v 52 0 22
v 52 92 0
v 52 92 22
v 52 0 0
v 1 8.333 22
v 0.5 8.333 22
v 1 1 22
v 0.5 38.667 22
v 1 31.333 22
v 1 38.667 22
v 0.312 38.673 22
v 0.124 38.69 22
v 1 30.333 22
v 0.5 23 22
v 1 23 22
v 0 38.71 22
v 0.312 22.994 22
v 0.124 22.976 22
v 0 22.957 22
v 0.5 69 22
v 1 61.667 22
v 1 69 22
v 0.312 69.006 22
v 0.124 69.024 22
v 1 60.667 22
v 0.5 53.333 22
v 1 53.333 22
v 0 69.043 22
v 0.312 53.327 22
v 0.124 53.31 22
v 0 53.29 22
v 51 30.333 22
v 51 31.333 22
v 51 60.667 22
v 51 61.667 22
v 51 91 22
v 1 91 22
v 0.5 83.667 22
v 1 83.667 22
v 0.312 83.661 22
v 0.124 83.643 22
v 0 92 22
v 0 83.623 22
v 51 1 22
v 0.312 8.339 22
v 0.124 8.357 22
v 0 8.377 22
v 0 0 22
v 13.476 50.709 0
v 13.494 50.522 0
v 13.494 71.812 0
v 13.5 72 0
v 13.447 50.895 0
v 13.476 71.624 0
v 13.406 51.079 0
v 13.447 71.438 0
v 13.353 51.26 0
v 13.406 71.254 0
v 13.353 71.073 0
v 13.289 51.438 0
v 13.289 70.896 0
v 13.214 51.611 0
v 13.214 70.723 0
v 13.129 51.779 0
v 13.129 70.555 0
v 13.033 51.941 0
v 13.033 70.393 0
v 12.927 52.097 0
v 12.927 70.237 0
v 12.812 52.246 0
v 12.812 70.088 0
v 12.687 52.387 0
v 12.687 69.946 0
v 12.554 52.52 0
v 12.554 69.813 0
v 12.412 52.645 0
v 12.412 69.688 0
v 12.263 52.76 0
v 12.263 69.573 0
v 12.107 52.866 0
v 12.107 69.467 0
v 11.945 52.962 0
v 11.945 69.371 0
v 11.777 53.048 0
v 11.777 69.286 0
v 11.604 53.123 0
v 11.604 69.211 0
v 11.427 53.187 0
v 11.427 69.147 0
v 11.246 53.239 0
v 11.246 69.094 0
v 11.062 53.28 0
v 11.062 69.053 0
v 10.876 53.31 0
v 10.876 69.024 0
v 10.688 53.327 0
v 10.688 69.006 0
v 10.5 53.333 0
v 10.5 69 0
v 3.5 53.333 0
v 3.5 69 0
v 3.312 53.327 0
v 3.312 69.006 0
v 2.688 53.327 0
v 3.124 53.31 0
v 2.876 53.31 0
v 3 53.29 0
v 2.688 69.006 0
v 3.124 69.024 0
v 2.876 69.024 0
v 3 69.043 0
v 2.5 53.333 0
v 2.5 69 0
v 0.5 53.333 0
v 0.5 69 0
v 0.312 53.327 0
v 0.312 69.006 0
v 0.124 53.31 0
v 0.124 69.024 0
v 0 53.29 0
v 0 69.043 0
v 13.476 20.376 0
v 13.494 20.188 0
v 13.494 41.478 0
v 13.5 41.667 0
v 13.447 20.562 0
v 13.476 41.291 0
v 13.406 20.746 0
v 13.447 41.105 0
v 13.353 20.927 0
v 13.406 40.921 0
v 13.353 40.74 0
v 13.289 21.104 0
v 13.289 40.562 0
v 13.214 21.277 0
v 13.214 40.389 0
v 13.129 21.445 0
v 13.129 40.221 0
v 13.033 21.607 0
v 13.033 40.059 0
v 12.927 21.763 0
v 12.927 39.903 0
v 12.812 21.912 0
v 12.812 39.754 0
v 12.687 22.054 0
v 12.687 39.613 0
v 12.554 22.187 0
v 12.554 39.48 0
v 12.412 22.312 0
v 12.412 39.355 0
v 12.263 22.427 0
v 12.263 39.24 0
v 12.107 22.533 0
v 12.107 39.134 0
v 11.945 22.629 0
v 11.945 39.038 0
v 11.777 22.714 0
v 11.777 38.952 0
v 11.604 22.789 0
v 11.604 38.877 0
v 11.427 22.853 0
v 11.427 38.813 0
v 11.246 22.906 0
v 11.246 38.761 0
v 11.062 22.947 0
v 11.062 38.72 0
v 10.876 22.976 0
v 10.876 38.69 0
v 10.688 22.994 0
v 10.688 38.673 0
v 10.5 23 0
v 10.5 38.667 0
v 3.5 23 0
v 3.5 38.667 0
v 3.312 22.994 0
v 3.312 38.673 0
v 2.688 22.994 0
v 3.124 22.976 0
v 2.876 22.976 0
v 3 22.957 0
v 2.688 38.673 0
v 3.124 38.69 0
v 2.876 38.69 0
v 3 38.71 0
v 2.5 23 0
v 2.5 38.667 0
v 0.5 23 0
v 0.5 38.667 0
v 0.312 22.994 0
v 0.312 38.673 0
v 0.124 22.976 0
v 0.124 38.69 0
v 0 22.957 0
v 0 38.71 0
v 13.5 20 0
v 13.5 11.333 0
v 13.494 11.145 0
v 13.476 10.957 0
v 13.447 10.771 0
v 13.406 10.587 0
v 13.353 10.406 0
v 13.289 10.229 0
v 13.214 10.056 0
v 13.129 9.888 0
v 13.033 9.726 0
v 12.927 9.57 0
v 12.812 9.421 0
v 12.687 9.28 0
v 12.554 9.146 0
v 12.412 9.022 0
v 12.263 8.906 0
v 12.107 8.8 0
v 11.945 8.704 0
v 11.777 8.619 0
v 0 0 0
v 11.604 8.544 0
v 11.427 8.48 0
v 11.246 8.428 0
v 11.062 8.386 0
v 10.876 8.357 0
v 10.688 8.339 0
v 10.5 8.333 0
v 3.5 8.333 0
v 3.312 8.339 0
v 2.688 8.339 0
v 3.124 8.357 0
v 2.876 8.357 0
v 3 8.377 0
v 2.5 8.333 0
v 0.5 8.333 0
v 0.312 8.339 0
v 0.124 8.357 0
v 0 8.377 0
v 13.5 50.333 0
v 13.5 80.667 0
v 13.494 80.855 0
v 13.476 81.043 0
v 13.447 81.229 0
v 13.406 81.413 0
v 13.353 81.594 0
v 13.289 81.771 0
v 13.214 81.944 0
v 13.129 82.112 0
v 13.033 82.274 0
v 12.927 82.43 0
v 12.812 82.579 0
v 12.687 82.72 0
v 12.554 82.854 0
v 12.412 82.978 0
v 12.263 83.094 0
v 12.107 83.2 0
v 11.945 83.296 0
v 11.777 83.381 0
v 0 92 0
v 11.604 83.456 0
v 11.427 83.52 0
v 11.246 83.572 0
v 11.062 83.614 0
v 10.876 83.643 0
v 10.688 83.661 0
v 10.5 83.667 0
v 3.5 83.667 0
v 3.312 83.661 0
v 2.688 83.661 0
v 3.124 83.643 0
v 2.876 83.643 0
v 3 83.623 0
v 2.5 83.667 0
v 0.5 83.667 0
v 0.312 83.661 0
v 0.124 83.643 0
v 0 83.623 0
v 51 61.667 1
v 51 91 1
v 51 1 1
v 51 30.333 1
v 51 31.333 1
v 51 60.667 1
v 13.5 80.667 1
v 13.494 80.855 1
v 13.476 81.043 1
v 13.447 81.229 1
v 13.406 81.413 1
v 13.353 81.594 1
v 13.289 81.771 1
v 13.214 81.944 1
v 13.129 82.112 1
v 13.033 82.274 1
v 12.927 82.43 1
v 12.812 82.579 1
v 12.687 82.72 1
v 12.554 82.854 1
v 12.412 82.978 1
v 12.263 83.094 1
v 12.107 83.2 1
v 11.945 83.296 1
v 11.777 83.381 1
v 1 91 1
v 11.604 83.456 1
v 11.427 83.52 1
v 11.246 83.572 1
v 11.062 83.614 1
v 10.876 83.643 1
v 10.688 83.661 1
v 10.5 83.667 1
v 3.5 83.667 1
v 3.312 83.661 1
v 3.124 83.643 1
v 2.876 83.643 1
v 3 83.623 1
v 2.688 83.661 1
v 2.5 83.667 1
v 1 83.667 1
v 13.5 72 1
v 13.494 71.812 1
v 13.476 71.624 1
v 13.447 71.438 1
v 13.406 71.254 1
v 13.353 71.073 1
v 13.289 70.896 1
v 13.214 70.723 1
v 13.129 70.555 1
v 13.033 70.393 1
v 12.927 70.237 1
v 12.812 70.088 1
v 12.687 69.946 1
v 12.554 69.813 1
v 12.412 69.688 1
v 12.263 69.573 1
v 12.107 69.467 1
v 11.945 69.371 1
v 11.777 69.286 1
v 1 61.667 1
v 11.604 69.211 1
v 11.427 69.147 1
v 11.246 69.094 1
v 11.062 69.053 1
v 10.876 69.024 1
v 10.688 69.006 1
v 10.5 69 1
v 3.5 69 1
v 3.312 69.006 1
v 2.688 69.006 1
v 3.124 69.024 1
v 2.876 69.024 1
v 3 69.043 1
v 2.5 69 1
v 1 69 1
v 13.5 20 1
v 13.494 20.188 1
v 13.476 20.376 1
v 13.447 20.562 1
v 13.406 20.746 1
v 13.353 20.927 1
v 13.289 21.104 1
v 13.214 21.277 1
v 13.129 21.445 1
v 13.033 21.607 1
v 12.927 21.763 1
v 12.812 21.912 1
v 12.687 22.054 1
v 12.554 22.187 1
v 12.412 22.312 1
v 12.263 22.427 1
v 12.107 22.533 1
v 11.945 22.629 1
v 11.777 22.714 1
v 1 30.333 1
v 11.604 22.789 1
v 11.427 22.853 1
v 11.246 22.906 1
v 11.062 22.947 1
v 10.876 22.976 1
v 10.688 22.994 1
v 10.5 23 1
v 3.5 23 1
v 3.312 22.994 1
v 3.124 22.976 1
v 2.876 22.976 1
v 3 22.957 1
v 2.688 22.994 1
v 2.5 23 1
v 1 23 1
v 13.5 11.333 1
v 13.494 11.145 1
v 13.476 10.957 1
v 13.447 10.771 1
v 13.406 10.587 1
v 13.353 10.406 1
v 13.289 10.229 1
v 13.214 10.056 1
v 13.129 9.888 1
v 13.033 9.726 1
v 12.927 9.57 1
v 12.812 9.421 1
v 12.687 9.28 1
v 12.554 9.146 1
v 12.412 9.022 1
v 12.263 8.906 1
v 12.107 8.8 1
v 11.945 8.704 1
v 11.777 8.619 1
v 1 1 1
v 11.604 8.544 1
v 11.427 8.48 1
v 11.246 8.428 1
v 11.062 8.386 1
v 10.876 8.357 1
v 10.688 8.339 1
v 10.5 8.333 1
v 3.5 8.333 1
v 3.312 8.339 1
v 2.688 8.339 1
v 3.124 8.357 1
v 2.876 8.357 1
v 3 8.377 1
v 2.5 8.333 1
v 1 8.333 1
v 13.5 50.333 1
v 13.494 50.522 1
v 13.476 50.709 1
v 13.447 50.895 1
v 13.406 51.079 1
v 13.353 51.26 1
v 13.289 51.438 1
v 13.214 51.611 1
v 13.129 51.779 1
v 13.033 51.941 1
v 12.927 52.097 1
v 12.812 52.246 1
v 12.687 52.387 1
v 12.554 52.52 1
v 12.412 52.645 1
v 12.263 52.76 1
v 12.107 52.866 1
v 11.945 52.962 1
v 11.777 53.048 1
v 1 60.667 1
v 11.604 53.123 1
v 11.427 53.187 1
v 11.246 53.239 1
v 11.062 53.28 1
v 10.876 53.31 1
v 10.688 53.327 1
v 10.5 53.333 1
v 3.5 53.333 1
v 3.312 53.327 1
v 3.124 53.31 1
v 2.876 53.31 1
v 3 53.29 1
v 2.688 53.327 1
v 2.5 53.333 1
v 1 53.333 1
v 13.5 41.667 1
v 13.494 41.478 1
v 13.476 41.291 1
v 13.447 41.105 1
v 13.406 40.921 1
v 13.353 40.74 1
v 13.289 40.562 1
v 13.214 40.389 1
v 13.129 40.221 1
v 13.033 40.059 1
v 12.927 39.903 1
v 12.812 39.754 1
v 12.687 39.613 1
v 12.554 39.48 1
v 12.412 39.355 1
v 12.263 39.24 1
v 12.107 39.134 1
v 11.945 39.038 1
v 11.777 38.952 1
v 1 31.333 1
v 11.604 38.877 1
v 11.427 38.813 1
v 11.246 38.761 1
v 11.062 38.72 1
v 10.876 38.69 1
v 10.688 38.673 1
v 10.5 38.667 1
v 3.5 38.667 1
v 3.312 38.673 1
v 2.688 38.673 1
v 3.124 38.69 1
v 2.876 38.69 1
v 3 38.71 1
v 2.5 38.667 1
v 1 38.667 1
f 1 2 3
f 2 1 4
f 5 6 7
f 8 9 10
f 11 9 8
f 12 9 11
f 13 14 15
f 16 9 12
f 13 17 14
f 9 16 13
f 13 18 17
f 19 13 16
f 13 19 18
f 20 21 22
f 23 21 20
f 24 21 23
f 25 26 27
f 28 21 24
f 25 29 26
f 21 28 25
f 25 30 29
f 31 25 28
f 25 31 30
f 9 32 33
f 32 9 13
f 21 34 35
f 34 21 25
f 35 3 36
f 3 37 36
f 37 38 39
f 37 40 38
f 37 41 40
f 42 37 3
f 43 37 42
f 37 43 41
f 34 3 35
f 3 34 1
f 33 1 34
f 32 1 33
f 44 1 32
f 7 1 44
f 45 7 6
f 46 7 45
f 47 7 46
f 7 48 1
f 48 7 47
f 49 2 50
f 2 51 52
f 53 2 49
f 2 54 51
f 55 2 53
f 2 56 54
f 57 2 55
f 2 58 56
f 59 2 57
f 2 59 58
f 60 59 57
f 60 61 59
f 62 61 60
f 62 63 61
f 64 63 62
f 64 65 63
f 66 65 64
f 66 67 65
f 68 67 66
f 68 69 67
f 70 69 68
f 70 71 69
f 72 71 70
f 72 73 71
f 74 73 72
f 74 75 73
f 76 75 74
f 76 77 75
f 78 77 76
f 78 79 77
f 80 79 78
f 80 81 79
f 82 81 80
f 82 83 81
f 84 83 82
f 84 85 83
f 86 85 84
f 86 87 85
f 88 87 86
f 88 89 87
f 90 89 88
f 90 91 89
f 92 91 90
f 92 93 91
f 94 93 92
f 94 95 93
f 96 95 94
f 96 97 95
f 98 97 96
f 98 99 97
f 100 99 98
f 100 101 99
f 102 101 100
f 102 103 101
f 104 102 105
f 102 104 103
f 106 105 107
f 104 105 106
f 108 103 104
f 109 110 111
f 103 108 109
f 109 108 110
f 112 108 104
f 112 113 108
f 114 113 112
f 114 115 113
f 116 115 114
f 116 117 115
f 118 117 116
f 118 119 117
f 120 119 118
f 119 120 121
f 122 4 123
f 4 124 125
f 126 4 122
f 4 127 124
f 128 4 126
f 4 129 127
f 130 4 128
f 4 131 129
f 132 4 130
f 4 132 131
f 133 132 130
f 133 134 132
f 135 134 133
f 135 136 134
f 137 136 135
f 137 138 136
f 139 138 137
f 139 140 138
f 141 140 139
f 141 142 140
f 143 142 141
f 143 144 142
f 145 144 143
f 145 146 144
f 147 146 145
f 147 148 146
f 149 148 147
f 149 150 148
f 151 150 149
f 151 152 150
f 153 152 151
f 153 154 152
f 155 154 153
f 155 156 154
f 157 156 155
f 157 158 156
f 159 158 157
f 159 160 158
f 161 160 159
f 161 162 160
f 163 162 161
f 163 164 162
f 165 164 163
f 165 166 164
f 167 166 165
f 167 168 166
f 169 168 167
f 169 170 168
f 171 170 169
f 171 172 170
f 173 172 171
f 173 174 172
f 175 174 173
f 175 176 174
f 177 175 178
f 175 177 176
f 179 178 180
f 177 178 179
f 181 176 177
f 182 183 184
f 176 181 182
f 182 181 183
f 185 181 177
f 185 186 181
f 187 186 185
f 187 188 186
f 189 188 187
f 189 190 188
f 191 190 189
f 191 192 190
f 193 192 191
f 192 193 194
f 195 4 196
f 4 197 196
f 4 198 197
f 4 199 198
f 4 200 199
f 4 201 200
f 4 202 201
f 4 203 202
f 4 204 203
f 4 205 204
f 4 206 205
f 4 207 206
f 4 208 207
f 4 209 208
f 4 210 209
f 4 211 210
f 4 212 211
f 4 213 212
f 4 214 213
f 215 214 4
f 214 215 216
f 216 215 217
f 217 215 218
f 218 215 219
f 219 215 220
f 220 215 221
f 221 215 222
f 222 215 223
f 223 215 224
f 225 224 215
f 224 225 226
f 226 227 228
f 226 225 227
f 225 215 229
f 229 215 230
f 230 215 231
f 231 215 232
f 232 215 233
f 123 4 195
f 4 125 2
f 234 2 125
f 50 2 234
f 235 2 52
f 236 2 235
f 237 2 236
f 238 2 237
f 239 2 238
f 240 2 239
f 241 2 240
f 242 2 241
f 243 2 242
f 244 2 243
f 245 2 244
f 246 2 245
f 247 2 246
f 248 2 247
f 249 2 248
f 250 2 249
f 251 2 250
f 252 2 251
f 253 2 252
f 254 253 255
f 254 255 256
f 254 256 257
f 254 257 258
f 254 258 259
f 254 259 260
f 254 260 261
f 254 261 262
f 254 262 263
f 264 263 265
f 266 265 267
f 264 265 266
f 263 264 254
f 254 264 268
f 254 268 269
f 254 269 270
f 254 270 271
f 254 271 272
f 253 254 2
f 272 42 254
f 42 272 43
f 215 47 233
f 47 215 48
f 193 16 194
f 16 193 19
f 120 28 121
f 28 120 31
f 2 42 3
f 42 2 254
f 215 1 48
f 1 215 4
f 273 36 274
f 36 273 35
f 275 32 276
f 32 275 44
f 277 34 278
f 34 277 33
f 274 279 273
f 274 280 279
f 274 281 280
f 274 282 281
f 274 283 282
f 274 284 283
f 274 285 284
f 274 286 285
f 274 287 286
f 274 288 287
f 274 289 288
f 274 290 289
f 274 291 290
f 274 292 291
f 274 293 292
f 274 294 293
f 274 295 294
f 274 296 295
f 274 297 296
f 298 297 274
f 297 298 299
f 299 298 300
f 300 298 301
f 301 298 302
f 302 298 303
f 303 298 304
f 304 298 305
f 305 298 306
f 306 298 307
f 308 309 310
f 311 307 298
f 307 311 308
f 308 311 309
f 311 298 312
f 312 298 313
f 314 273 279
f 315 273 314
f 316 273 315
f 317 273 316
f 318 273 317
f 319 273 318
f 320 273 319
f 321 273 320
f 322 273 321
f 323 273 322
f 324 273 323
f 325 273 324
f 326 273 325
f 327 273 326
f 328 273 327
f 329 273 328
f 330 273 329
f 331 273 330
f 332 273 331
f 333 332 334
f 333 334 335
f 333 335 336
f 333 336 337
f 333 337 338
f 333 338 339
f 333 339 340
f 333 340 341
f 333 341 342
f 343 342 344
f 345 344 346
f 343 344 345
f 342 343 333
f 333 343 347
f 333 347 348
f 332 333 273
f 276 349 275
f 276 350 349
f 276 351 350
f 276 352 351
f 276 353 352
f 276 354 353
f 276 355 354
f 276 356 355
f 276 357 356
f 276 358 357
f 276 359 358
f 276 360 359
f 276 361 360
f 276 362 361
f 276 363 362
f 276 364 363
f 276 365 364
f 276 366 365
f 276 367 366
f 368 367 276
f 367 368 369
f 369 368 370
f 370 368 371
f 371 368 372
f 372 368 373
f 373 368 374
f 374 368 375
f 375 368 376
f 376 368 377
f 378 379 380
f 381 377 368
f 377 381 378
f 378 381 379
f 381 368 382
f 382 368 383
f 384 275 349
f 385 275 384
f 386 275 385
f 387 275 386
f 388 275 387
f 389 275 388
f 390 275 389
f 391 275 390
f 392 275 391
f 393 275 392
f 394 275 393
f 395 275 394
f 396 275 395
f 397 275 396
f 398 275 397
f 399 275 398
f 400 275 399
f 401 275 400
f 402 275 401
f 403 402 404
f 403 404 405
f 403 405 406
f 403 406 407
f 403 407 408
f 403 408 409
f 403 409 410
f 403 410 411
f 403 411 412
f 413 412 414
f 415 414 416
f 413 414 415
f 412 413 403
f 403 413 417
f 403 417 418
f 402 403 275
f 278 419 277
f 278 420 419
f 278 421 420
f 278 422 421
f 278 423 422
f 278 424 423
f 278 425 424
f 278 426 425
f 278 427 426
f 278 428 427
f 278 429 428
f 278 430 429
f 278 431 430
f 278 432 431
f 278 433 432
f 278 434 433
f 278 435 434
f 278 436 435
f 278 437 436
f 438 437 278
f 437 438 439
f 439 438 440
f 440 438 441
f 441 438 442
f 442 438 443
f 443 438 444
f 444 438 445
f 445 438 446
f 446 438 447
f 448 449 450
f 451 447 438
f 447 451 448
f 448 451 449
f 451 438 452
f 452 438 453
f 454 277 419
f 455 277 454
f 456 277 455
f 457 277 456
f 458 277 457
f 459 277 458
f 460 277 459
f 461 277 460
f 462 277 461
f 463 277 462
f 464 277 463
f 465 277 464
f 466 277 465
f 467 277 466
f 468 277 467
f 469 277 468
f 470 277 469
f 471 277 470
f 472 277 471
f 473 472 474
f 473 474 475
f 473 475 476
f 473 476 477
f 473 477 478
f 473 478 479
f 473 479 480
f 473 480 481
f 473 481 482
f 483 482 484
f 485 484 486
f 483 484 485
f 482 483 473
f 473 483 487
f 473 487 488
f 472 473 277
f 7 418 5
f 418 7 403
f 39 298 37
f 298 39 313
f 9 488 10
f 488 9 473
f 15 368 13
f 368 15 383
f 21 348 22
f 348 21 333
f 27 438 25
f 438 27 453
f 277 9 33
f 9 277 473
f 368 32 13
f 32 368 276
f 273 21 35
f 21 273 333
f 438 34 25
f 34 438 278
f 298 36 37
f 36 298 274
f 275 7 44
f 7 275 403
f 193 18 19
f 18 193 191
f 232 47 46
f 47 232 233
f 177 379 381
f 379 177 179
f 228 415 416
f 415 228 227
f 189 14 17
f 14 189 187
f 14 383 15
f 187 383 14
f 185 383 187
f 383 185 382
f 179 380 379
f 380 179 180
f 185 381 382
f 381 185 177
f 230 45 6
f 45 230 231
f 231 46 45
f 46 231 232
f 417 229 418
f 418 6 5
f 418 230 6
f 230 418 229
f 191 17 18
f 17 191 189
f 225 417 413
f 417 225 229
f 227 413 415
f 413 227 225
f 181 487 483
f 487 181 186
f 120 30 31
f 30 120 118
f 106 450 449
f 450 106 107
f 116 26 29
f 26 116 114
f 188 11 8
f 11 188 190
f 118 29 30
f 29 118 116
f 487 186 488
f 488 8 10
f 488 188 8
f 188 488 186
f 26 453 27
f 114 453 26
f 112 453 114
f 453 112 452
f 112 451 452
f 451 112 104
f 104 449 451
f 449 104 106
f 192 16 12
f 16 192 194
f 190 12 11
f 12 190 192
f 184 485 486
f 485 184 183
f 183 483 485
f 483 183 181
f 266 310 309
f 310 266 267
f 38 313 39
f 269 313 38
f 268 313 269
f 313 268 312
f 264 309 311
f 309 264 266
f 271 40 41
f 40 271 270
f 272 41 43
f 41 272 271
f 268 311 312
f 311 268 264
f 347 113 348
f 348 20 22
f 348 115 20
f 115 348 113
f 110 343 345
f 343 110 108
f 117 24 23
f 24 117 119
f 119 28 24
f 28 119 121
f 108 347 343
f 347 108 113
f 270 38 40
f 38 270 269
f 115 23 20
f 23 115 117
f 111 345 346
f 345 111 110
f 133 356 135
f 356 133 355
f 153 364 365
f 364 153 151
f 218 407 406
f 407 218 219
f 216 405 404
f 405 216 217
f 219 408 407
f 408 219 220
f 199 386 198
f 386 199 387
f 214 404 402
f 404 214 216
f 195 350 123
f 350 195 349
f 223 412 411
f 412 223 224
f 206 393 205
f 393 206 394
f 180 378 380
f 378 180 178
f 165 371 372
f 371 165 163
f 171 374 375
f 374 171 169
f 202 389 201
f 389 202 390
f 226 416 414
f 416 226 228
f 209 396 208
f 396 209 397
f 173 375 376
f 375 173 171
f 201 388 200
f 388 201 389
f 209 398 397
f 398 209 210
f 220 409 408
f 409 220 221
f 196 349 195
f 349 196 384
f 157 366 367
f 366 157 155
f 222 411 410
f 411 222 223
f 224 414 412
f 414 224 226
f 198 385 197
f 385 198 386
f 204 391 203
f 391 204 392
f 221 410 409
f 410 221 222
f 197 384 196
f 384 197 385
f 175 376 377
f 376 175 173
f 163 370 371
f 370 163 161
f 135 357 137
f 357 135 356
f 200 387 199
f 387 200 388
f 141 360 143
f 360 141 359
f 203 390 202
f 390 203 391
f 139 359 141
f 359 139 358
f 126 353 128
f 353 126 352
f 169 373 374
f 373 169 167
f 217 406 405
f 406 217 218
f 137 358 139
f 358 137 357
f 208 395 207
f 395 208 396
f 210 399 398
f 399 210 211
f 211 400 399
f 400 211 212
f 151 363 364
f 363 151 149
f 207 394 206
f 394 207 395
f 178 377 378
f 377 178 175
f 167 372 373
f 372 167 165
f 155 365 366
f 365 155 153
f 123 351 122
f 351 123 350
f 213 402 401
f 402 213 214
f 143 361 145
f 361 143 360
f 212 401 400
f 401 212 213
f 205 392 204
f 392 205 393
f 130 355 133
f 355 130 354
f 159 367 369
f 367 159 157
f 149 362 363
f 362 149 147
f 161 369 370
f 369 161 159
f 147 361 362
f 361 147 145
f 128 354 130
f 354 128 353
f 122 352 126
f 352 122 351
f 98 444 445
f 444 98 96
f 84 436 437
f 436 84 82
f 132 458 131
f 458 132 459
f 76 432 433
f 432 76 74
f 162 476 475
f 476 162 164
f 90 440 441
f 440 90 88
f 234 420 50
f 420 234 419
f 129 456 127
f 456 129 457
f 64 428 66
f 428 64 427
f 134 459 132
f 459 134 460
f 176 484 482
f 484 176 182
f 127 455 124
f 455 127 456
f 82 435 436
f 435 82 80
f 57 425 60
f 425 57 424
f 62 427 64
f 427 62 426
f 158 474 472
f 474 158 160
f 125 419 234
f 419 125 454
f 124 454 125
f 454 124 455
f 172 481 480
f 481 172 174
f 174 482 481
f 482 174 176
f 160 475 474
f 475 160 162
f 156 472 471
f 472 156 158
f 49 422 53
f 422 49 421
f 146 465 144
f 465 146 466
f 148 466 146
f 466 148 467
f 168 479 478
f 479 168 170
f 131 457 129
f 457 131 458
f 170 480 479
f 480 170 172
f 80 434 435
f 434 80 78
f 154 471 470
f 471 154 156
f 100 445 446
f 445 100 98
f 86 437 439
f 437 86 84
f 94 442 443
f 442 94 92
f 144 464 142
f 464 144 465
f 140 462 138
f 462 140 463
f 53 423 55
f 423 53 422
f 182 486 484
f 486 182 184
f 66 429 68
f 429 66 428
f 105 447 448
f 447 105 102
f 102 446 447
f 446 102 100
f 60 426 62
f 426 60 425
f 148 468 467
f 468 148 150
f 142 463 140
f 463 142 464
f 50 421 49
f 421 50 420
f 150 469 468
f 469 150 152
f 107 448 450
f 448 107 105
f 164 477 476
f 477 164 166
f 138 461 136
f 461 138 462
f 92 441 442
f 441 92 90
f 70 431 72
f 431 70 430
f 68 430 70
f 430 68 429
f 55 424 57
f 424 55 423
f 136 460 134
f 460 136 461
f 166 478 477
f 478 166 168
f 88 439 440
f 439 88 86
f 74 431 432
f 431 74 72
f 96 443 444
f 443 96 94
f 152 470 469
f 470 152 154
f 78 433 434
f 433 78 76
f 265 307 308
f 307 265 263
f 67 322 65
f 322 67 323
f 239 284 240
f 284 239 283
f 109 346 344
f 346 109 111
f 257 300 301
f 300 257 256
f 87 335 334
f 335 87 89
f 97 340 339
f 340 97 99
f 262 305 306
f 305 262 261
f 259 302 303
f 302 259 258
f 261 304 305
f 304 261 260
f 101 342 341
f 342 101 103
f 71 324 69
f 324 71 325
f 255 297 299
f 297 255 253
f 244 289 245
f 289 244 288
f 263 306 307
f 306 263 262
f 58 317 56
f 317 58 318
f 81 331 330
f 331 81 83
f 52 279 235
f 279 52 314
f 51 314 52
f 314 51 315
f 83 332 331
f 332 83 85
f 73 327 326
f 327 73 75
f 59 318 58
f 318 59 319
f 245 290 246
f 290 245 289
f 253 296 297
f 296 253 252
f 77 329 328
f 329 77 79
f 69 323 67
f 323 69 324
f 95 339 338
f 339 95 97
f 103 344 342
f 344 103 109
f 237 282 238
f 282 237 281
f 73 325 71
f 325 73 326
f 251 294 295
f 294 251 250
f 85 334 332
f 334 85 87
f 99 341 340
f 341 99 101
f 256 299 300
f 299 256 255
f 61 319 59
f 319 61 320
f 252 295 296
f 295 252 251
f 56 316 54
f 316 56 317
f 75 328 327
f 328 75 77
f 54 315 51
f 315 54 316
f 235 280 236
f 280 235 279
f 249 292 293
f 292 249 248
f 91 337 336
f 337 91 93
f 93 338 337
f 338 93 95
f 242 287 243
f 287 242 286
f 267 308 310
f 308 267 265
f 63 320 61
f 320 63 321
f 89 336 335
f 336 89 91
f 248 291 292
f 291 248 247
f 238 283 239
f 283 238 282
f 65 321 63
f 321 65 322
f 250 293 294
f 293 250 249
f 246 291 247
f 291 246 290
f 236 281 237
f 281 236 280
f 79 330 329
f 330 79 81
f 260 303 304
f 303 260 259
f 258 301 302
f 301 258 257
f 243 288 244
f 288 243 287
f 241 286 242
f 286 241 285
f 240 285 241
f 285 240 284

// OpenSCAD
include <boardgame_insert_toolkit_lib.2.scad>;

// determines whether lids are output.
g_b_print_lid = true;

// determines whether boxes are output.
g_b_print_box = true; 

// Focus on one box
g_isolated_print_box = ""; 

// Used to visualize how all of the boxes fit together. 
g_b_visualization = false;          
        
// this is the outer wall thickness. 
//Default = 1.5mm
g_wall_thickness = 1.0;

// The tolerance value is extra space put between planes of the lid and box that fit together.
// Increase the tolerance to loosen the fit and decrease it to tighten it.
//
// Note that the tolerance is applied exclusively to the lid.
// So if the lid is too tight or too loose, change this value ( up for looser fit, down for tighter fit ) and 
// you only need to reprint the lid.
// 
// The exception is the stackable box, where the bottom of the box is the lid of the box below,
// in which case the tolerance also affects that box bottom.
//
g_tolerance = 0.15;

// This adjusts the position of the lid detents downward. 
// The larger the value, the bigger the gap between the lid and the box.
g_tolerance_detents_pos = 0.1;

aw_size_x = 52.0;
aw_size_y = 92.0;
aw_size_z = 22.0;


data =
  [
    [
      "simple box",
      [
        [ BOX_SIZE_XYZ, [aw_size_x, aw_size_y, aw_size_z] ],
        [ BOX_NO_LID_B, t],
        [
          BOX_COMPONENT,
          [
            [
              CMP_COMPARTMENT_SIZE_XYZ,
              [
                (aw_size_x - 2.0),
                (aw_size_y - 4.0) / 3,
                aw_size_z - g_wall_thickness
              ]
            ],
            [ CMP_NUM_COMPARTMENTS_XY, [1, 3] ],
            [ POSITION_XY, [0, 0] ],
            [ CMP_CUTOUT_SIDES_4B,   [f,f,t,f]],
            //[ CMP_CUTOUT_DEPTH_PCT,  20],
            //[ CMP_CUTOUT_WIDTH_PCT,  50],
            //[ CMP_CUTOUT_HEIGHT_PCT, 100], 
            //[ CMP_SHAPE_ROTATED_B, t ],
            //[ CMP_SHAPE, FILLET ],
            //[ CMP_FILLET_RADIUS, 5.0 ],
          ]
        ],
      ]
    ]
  ];

MakeAll();
